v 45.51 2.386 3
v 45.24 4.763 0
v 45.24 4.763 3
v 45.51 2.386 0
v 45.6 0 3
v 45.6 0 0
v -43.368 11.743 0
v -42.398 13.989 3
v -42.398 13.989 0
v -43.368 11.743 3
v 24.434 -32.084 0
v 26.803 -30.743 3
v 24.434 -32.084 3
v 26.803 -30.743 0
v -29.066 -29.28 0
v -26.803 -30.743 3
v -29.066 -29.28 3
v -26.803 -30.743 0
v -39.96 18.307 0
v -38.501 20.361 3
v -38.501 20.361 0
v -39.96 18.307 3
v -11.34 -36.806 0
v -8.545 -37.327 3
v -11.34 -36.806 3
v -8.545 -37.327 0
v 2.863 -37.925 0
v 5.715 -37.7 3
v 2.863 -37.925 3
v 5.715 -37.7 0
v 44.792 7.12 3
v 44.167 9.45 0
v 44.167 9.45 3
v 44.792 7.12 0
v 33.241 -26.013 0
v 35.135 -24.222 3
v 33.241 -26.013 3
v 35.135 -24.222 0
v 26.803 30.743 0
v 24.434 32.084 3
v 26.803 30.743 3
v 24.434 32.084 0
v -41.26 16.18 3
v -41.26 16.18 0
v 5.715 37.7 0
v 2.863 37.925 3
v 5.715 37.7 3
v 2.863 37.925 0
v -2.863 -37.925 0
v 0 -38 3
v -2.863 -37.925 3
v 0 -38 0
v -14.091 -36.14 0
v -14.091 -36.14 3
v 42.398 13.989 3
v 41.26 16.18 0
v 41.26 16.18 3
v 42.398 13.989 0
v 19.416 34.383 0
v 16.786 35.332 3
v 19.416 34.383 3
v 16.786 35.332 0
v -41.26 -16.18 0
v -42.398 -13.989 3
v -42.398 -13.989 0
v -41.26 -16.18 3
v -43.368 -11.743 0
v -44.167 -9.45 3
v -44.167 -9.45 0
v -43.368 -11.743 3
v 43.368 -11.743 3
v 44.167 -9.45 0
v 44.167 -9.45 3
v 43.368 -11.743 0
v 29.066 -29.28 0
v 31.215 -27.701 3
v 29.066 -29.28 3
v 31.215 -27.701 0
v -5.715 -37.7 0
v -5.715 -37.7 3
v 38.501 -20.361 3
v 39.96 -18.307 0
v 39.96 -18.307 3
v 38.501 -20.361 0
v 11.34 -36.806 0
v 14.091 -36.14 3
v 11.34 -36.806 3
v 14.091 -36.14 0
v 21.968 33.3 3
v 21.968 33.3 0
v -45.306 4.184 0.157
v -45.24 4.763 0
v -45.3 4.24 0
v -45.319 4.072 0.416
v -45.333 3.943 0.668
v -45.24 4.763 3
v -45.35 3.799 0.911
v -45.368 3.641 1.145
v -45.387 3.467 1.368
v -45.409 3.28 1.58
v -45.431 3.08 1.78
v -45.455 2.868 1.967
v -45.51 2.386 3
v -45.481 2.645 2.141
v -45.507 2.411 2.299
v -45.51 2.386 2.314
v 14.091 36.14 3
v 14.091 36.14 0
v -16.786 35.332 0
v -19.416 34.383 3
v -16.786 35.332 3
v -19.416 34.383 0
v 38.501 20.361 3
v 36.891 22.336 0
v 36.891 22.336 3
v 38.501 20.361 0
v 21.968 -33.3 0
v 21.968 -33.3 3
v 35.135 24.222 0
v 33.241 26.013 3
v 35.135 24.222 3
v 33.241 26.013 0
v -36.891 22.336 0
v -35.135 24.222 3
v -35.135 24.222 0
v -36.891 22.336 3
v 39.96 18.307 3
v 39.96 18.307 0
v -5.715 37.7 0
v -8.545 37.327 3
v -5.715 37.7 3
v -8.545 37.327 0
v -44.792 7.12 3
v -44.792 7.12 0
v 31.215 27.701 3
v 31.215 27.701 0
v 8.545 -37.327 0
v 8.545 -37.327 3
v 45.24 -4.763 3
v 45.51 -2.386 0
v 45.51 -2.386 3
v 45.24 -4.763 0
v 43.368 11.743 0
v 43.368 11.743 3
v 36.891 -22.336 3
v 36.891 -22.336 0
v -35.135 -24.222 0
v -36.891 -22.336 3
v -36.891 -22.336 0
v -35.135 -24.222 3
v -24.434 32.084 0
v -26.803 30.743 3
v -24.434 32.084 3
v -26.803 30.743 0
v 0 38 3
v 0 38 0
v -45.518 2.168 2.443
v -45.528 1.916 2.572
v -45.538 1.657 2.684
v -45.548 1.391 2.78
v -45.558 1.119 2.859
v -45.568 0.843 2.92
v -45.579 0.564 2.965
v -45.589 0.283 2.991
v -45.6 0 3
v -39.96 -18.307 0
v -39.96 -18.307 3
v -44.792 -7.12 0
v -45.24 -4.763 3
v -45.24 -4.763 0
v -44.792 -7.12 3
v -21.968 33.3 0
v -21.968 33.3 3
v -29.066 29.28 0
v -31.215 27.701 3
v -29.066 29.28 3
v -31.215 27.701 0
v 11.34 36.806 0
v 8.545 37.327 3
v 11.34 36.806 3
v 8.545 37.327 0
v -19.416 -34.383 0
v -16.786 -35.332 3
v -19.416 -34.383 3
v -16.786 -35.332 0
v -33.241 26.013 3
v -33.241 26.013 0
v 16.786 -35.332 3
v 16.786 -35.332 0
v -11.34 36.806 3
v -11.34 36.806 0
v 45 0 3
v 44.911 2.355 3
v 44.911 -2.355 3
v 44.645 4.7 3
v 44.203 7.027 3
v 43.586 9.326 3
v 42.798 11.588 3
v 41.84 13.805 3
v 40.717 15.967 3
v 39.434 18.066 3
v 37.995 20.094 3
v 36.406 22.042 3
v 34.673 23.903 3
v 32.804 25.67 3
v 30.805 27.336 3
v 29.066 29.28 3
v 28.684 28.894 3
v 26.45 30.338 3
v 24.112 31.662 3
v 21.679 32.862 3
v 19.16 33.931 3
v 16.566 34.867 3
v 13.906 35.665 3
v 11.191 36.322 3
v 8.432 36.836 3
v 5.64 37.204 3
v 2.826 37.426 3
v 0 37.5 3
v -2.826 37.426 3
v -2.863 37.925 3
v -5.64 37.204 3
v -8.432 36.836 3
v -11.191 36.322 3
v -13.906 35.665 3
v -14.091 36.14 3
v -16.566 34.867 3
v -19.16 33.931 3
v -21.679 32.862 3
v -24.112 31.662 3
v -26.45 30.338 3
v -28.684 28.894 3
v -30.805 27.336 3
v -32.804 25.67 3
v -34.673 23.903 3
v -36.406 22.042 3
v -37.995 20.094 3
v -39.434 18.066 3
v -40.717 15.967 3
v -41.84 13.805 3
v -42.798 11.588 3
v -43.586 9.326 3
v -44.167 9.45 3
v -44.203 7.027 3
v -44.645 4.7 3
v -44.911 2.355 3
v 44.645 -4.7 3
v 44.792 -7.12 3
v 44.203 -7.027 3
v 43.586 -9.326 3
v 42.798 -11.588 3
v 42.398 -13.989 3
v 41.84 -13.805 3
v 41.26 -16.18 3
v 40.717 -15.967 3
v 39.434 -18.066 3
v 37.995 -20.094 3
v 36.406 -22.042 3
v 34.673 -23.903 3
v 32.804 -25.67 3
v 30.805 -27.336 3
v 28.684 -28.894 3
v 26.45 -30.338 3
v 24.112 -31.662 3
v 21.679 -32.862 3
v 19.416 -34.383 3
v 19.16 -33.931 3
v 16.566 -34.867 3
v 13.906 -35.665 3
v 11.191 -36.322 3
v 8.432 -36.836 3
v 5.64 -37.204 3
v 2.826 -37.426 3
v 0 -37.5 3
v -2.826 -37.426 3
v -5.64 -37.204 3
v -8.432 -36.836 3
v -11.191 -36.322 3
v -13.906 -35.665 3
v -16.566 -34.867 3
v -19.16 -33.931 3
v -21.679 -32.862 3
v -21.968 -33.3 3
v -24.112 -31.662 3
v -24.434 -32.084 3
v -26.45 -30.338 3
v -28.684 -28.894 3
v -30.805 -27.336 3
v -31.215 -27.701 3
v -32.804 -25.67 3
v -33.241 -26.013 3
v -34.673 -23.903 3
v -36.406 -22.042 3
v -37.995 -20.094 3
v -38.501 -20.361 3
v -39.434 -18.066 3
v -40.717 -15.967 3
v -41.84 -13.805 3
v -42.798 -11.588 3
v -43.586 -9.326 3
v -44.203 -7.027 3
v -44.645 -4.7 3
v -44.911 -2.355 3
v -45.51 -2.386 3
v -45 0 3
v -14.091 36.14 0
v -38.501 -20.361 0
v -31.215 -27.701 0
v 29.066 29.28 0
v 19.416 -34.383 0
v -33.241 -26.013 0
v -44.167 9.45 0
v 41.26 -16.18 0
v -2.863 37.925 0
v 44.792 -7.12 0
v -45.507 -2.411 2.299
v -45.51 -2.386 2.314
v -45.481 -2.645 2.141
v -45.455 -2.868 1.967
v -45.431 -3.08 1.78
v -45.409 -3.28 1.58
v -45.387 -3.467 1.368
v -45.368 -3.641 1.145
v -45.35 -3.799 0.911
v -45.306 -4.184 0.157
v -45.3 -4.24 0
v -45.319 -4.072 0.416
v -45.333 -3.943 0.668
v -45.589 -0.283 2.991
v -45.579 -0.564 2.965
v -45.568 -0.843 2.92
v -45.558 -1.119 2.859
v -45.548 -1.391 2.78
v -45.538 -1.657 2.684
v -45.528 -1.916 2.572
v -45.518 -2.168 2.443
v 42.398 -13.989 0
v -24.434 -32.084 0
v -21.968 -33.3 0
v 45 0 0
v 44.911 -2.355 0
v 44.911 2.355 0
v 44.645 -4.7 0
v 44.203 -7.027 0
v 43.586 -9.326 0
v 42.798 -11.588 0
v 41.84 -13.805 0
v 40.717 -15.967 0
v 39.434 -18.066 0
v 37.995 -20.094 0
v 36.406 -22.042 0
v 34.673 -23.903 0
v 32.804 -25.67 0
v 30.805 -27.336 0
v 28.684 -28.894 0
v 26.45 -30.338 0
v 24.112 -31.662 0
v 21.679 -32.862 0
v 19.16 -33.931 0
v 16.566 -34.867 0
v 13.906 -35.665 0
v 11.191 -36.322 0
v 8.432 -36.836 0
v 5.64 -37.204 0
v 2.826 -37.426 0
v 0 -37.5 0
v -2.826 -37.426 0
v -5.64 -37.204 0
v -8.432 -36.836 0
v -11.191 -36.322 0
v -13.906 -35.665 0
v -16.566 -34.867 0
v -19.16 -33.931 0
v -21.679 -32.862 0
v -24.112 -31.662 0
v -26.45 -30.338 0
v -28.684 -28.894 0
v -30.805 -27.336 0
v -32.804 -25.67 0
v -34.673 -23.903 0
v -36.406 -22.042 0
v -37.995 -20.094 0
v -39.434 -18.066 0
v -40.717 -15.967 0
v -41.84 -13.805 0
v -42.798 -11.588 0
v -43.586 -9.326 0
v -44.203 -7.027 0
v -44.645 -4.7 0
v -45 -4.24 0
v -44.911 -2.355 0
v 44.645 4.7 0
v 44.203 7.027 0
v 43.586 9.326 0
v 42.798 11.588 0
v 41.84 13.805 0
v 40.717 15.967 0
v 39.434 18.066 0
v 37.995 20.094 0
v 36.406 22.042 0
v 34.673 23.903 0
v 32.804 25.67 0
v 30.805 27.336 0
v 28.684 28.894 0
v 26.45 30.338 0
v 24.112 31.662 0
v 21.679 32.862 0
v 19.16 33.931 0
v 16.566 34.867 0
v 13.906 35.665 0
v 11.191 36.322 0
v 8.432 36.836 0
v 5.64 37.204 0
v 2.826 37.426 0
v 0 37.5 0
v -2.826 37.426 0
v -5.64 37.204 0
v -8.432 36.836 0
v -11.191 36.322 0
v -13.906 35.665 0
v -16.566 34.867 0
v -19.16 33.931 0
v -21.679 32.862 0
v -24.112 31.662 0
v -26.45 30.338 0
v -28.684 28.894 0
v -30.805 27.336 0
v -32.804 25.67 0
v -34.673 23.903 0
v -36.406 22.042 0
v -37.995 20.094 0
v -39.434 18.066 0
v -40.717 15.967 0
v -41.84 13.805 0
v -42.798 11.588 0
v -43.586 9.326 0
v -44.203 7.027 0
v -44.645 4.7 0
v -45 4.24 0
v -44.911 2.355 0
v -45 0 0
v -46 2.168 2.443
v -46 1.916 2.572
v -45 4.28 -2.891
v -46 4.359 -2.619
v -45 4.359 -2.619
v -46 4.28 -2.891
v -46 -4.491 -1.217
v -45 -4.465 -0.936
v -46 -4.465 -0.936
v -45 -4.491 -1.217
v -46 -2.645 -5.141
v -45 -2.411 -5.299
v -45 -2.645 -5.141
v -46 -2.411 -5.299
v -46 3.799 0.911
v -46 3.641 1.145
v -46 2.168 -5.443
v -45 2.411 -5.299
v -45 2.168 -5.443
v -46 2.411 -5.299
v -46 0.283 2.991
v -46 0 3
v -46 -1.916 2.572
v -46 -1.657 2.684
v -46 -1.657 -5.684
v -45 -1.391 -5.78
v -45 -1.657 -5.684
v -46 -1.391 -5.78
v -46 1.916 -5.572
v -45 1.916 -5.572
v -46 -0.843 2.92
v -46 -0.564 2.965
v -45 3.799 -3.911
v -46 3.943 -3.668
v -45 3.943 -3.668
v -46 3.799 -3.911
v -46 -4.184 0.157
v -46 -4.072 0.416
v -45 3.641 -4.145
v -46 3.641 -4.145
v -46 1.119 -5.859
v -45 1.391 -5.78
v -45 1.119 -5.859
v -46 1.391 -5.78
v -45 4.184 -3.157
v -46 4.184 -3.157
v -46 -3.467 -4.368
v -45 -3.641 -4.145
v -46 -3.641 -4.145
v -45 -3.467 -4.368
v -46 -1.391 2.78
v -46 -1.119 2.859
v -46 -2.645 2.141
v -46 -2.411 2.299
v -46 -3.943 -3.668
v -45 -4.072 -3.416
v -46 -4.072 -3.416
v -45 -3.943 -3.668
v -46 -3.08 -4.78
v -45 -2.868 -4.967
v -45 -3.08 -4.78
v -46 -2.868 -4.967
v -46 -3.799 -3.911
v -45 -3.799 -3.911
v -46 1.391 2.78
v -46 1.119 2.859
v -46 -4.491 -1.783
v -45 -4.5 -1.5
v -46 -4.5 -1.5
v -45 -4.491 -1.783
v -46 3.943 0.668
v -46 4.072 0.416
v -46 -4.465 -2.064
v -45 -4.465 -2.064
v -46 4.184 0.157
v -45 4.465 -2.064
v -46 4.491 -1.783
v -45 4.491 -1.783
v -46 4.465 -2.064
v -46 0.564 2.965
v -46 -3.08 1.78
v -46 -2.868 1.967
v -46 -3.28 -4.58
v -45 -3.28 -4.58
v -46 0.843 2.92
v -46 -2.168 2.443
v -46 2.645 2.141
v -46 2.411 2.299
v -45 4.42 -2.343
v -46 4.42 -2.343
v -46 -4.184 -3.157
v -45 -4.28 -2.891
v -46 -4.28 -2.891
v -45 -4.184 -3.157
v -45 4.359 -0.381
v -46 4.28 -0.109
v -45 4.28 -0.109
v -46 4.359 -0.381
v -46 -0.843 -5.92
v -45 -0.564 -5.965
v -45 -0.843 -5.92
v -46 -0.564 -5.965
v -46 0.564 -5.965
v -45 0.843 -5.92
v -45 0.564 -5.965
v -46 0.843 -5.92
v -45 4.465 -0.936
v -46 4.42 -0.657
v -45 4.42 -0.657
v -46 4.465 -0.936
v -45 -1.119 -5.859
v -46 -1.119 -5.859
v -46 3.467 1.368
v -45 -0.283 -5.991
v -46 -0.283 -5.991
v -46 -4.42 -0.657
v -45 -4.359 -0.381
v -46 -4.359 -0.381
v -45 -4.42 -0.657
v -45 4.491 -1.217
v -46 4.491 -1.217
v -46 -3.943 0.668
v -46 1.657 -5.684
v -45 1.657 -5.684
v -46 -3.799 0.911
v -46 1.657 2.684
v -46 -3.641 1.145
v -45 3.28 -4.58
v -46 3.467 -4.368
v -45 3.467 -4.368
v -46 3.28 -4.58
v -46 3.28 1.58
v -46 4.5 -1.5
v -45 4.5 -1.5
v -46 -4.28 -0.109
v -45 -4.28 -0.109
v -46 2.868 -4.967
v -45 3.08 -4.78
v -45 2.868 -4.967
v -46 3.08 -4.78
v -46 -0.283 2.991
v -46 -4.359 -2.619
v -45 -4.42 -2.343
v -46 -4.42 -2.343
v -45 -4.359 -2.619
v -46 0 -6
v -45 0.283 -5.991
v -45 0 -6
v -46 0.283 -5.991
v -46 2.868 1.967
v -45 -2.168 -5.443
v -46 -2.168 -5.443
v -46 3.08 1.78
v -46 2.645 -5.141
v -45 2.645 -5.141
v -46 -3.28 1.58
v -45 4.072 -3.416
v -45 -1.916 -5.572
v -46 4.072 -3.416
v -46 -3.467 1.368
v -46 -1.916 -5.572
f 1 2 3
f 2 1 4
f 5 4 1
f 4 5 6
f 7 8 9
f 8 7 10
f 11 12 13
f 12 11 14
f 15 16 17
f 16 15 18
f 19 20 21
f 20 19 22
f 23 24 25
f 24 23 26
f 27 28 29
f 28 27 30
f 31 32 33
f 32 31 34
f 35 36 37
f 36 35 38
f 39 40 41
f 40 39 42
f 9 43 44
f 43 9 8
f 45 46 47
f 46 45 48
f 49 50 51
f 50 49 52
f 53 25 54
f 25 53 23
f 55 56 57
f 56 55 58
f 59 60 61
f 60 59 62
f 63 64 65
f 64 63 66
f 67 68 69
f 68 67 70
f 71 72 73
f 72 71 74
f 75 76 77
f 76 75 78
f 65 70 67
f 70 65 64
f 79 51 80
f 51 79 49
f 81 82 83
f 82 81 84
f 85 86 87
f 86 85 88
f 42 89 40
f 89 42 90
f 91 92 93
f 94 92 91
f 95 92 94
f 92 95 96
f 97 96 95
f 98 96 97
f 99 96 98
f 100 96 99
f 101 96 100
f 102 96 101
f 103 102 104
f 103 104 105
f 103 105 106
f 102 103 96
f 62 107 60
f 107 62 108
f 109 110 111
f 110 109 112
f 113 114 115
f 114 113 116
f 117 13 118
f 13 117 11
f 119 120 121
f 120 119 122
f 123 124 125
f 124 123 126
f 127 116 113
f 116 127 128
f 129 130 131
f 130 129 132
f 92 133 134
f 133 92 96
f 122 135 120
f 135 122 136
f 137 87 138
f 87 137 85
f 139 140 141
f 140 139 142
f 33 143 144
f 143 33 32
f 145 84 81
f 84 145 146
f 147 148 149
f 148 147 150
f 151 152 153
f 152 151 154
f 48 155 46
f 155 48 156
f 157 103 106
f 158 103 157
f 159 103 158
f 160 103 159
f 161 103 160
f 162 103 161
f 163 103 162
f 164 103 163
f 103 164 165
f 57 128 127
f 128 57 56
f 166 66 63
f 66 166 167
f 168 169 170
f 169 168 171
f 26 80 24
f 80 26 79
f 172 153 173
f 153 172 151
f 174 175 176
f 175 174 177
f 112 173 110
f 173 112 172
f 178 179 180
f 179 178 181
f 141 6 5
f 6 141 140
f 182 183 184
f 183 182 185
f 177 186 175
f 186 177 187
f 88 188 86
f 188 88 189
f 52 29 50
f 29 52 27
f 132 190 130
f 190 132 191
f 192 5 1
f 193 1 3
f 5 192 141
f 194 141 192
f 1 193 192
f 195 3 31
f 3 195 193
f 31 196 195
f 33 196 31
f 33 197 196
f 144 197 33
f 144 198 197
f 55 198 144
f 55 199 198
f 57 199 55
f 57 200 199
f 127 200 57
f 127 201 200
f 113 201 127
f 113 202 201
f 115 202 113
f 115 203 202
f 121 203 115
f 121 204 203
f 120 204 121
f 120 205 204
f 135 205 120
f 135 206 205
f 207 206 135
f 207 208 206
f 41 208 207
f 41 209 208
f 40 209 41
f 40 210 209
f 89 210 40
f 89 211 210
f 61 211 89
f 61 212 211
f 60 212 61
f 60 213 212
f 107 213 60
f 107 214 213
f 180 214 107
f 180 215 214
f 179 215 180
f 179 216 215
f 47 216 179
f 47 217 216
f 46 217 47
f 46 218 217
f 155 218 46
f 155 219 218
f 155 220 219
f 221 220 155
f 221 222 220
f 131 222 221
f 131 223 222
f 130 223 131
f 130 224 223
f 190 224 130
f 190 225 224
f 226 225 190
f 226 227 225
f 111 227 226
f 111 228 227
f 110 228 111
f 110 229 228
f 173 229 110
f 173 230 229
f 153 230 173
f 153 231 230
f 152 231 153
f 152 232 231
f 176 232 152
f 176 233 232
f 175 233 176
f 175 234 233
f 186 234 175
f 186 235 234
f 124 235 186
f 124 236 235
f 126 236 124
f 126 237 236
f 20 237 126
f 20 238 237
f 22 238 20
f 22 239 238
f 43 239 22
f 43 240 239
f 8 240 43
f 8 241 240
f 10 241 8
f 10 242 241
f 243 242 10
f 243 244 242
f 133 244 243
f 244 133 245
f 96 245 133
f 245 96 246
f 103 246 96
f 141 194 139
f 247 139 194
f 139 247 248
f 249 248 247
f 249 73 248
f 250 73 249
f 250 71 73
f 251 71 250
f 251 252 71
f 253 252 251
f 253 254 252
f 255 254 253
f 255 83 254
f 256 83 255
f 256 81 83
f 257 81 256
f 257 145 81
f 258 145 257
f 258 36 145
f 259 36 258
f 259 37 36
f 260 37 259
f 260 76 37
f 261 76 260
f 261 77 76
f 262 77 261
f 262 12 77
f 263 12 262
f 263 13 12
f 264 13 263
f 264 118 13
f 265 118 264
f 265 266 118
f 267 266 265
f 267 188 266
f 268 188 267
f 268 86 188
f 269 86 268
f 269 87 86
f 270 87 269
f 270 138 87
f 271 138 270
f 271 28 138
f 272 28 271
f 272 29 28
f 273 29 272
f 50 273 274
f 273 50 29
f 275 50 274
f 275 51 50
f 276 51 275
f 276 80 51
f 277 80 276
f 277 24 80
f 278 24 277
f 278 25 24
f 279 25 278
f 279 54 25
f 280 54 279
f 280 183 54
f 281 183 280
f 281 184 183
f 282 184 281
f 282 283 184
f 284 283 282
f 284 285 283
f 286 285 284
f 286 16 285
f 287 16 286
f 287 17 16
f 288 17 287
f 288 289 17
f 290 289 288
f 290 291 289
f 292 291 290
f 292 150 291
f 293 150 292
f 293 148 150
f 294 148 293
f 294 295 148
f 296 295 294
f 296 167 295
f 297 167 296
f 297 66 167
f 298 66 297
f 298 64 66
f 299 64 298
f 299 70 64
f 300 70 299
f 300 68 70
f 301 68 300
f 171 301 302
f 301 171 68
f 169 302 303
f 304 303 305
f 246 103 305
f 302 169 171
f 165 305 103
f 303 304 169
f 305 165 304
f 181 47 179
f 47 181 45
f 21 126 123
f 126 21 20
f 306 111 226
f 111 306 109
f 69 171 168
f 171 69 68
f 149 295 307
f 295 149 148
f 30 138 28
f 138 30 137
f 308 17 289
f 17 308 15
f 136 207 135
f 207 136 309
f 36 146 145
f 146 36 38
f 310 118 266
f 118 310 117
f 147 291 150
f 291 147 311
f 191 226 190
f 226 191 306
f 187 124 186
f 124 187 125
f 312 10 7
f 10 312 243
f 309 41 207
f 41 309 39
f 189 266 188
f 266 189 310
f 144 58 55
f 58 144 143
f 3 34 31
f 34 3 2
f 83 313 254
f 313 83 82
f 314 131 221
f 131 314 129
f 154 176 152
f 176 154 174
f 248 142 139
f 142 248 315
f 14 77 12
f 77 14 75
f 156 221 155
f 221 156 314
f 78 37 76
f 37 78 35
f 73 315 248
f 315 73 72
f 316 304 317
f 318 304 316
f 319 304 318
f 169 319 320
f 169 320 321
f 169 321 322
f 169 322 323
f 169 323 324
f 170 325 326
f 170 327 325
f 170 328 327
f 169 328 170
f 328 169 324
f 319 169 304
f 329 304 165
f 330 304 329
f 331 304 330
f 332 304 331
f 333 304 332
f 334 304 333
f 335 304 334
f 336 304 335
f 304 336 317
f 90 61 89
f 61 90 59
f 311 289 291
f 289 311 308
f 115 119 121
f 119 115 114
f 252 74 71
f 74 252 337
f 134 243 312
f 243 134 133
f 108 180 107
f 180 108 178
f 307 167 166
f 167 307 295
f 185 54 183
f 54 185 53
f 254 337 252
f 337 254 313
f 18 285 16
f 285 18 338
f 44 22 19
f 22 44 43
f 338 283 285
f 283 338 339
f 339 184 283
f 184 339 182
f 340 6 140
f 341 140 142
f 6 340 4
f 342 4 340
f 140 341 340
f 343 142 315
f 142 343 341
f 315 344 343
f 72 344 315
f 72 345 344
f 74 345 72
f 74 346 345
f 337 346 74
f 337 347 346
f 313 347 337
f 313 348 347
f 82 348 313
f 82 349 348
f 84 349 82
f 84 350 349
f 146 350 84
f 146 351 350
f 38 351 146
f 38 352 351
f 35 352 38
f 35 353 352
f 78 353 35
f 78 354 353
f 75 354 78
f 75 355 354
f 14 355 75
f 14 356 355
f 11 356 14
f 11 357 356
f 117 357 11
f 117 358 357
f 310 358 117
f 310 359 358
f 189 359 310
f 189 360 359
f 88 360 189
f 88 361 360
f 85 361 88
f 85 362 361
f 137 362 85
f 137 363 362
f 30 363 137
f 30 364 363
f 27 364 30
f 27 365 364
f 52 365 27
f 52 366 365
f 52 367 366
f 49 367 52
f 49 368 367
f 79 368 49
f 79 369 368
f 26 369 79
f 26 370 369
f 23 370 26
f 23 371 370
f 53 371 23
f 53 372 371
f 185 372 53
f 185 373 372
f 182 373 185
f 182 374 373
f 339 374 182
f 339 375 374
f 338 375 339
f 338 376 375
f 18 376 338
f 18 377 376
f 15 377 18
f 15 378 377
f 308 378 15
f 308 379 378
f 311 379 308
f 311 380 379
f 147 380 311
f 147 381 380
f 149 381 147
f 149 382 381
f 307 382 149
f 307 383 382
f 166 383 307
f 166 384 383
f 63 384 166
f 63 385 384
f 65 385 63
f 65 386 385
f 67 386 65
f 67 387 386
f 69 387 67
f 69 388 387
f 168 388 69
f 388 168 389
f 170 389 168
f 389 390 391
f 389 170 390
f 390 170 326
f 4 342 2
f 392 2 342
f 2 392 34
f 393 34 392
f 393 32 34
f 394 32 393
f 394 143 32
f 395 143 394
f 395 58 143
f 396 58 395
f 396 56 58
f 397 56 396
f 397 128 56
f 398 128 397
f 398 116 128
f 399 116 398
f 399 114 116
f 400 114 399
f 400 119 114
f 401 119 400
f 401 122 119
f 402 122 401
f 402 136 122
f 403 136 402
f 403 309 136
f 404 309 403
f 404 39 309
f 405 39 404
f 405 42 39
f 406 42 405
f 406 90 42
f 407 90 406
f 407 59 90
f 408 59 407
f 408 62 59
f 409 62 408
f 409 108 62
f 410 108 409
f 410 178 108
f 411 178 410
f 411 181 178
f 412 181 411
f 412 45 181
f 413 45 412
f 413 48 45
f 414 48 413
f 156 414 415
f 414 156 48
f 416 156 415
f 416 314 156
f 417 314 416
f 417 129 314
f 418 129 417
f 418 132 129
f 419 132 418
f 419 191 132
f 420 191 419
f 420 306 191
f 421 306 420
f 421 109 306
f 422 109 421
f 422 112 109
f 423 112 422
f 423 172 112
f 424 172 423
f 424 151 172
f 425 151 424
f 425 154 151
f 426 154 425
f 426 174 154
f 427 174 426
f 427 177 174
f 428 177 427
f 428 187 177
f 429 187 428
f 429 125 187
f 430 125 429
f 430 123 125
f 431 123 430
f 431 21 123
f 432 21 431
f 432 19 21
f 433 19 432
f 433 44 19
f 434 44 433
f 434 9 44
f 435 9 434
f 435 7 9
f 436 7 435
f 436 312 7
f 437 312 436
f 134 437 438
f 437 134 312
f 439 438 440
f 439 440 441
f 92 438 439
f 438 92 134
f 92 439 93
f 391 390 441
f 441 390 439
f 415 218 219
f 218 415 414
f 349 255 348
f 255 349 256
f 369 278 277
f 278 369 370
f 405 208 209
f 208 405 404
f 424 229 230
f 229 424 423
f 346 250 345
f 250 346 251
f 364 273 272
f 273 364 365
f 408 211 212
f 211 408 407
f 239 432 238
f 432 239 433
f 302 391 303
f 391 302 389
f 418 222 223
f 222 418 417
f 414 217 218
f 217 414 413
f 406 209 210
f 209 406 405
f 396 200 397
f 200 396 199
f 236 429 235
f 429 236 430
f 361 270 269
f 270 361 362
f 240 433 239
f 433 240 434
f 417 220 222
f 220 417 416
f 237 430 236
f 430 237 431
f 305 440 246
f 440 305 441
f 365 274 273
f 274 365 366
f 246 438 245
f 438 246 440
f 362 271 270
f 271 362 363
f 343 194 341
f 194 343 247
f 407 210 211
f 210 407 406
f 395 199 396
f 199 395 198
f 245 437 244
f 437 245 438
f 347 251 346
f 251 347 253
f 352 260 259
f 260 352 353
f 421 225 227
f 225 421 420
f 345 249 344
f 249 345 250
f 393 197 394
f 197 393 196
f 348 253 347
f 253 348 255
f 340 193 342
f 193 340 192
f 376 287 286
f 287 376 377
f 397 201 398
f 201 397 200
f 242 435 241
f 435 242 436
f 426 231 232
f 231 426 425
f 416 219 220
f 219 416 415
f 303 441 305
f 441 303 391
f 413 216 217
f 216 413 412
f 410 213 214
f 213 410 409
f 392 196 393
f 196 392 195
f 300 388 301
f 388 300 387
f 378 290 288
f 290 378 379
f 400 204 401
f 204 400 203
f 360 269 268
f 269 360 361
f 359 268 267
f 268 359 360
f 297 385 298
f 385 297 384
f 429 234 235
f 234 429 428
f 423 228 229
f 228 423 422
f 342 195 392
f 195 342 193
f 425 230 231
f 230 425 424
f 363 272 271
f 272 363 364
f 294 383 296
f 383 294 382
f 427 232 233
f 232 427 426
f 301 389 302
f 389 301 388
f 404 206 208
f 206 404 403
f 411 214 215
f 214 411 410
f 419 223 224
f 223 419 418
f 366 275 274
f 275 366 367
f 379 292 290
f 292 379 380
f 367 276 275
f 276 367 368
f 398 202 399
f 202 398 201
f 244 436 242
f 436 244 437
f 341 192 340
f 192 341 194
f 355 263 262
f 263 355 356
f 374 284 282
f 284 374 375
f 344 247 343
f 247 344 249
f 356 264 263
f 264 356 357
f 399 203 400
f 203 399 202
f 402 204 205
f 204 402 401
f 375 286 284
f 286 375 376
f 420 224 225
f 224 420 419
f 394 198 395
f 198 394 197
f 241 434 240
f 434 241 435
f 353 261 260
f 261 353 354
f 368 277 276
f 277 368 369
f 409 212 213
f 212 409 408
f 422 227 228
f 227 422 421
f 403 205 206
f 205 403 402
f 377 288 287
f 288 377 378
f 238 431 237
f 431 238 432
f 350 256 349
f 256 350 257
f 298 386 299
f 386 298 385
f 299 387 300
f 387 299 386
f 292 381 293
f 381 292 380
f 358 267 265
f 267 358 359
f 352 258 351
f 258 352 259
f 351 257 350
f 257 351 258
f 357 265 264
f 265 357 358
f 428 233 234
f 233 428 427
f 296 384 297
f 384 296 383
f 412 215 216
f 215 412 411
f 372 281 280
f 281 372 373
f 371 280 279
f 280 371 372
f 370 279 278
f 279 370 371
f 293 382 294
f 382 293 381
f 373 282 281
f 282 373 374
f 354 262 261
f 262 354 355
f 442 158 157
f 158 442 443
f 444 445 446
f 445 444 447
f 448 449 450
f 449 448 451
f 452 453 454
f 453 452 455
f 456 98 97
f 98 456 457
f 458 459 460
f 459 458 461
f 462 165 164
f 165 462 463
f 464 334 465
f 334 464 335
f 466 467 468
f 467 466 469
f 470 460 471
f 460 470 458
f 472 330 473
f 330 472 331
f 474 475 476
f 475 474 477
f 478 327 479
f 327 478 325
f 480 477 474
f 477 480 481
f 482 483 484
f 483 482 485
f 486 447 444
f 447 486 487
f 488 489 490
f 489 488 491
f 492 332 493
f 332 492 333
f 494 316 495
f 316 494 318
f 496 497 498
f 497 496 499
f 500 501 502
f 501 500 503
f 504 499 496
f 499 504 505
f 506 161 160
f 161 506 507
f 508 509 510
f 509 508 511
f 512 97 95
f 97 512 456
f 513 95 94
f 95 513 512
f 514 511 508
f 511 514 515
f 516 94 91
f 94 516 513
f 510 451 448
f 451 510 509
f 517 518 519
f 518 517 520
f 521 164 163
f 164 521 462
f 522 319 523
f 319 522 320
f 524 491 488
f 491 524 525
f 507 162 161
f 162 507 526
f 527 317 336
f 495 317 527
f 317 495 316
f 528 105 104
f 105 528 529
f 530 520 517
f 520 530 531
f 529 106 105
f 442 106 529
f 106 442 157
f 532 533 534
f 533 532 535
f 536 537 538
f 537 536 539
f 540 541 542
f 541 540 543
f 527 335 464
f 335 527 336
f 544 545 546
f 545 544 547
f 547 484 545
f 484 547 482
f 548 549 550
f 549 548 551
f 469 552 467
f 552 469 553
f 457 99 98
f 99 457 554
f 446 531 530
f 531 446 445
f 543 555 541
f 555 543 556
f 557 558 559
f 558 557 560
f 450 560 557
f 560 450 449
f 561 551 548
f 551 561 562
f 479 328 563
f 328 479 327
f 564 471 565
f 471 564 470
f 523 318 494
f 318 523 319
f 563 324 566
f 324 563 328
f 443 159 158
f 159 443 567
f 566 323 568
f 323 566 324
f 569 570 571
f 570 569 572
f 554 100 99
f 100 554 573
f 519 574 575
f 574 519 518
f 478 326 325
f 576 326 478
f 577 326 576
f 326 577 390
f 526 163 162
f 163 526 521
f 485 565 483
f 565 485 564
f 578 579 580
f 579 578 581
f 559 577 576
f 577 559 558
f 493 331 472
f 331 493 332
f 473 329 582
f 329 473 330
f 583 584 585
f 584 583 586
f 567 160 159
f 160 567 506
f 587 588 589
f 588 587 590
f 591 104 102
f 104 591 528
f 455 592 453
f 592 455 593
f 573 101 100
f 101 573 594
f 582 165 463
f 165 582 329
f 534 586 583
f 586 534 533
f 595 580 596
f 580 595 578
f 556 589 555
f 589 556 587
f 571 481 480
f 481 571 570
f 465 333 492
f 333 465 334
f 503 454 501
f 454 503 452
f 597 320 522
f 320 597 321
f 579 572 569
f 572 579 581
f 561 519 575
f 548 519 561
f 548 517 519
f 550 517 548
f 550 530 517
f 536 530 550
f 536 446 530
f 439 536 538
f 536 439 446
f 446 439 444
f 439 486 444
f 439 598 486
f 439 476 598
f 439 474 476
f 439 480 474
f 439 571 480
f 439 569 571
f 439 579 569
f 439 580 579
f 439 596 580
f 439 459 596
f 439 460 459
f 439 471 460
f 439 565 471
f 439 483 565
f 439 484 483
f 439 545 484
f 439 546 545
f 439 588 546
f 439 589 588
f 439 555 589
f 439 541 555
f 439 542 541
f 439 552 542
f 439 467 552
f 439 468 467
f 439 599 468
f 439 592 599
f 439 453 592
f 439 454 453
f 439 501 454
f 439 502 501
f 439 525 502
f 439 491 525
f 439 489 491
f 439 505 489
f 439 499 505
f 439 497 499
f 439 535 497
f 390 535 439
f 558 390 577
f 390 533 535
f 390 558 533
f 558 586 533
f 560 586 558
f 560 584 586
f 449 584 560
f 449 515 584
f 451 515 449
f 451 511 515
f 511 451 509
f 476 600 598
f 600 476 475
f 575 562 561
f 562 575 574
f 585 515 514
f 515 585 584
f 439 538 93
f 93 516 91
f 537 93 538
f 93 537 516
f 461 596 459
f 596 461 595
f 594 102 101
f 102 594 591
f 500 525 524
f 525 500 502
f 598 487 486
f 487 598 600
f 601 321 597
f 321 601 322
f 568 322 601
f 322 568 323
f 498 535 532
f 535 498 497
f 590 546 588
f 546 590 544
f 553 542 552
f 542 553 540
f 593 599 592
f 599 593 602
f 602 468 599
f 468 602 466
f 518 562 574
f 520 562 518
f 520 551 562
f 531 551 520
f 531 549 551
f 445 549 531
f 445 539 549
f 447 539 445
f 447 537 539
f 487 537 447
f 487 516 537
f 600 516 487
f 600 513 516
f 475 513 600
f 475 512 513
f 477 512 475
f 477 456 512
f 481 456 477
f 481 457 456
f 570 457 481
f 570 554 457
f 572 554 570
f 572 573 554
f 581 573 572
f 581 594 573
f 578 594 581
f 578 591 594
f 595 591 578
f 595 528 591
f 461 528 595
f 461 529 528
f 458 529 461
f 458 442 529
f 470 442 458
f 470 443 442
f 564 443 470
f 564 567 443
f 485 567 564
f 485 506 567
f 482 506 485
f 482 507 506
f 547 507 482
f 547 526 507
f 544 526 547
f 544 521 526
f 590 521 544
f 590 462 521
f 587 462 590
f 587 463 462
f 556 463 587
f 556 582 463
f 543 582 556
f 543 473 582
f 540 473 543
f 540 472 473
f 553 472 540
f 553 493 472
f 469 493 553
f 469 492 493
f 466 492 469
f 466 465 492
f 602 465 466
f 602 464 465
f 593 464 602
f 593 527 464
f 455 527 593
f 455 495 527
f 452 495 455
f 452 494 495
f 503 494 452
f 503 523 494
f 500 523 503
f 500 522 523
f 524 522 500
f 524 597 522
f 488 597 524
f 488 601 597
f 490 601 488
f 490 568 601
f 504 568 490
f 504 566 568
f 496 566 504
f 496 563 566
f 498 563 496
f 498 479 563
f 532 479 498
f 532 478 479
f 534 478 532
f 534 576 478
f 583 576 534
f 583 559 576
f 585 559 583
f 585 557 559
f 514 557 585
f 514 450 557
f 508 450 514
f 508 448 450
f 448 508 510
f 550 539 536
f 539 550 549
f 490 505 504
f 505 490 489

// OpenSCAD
width  = 75;
length = 90;
height =  3;
thickness = 1;

$fn = 100;

scale([length/width, 1, 1]) {
    difference() {
        cylinder(d = width + thickness, h = height);
        translate([0, 0, -1])
            cylinder(d = width, h = height+3);
    }
}

translate([-0.5*length, 0, -0.5*height])
rotate([0, -90, 0])
cylinder( d = 3 * height, h = thickness );
